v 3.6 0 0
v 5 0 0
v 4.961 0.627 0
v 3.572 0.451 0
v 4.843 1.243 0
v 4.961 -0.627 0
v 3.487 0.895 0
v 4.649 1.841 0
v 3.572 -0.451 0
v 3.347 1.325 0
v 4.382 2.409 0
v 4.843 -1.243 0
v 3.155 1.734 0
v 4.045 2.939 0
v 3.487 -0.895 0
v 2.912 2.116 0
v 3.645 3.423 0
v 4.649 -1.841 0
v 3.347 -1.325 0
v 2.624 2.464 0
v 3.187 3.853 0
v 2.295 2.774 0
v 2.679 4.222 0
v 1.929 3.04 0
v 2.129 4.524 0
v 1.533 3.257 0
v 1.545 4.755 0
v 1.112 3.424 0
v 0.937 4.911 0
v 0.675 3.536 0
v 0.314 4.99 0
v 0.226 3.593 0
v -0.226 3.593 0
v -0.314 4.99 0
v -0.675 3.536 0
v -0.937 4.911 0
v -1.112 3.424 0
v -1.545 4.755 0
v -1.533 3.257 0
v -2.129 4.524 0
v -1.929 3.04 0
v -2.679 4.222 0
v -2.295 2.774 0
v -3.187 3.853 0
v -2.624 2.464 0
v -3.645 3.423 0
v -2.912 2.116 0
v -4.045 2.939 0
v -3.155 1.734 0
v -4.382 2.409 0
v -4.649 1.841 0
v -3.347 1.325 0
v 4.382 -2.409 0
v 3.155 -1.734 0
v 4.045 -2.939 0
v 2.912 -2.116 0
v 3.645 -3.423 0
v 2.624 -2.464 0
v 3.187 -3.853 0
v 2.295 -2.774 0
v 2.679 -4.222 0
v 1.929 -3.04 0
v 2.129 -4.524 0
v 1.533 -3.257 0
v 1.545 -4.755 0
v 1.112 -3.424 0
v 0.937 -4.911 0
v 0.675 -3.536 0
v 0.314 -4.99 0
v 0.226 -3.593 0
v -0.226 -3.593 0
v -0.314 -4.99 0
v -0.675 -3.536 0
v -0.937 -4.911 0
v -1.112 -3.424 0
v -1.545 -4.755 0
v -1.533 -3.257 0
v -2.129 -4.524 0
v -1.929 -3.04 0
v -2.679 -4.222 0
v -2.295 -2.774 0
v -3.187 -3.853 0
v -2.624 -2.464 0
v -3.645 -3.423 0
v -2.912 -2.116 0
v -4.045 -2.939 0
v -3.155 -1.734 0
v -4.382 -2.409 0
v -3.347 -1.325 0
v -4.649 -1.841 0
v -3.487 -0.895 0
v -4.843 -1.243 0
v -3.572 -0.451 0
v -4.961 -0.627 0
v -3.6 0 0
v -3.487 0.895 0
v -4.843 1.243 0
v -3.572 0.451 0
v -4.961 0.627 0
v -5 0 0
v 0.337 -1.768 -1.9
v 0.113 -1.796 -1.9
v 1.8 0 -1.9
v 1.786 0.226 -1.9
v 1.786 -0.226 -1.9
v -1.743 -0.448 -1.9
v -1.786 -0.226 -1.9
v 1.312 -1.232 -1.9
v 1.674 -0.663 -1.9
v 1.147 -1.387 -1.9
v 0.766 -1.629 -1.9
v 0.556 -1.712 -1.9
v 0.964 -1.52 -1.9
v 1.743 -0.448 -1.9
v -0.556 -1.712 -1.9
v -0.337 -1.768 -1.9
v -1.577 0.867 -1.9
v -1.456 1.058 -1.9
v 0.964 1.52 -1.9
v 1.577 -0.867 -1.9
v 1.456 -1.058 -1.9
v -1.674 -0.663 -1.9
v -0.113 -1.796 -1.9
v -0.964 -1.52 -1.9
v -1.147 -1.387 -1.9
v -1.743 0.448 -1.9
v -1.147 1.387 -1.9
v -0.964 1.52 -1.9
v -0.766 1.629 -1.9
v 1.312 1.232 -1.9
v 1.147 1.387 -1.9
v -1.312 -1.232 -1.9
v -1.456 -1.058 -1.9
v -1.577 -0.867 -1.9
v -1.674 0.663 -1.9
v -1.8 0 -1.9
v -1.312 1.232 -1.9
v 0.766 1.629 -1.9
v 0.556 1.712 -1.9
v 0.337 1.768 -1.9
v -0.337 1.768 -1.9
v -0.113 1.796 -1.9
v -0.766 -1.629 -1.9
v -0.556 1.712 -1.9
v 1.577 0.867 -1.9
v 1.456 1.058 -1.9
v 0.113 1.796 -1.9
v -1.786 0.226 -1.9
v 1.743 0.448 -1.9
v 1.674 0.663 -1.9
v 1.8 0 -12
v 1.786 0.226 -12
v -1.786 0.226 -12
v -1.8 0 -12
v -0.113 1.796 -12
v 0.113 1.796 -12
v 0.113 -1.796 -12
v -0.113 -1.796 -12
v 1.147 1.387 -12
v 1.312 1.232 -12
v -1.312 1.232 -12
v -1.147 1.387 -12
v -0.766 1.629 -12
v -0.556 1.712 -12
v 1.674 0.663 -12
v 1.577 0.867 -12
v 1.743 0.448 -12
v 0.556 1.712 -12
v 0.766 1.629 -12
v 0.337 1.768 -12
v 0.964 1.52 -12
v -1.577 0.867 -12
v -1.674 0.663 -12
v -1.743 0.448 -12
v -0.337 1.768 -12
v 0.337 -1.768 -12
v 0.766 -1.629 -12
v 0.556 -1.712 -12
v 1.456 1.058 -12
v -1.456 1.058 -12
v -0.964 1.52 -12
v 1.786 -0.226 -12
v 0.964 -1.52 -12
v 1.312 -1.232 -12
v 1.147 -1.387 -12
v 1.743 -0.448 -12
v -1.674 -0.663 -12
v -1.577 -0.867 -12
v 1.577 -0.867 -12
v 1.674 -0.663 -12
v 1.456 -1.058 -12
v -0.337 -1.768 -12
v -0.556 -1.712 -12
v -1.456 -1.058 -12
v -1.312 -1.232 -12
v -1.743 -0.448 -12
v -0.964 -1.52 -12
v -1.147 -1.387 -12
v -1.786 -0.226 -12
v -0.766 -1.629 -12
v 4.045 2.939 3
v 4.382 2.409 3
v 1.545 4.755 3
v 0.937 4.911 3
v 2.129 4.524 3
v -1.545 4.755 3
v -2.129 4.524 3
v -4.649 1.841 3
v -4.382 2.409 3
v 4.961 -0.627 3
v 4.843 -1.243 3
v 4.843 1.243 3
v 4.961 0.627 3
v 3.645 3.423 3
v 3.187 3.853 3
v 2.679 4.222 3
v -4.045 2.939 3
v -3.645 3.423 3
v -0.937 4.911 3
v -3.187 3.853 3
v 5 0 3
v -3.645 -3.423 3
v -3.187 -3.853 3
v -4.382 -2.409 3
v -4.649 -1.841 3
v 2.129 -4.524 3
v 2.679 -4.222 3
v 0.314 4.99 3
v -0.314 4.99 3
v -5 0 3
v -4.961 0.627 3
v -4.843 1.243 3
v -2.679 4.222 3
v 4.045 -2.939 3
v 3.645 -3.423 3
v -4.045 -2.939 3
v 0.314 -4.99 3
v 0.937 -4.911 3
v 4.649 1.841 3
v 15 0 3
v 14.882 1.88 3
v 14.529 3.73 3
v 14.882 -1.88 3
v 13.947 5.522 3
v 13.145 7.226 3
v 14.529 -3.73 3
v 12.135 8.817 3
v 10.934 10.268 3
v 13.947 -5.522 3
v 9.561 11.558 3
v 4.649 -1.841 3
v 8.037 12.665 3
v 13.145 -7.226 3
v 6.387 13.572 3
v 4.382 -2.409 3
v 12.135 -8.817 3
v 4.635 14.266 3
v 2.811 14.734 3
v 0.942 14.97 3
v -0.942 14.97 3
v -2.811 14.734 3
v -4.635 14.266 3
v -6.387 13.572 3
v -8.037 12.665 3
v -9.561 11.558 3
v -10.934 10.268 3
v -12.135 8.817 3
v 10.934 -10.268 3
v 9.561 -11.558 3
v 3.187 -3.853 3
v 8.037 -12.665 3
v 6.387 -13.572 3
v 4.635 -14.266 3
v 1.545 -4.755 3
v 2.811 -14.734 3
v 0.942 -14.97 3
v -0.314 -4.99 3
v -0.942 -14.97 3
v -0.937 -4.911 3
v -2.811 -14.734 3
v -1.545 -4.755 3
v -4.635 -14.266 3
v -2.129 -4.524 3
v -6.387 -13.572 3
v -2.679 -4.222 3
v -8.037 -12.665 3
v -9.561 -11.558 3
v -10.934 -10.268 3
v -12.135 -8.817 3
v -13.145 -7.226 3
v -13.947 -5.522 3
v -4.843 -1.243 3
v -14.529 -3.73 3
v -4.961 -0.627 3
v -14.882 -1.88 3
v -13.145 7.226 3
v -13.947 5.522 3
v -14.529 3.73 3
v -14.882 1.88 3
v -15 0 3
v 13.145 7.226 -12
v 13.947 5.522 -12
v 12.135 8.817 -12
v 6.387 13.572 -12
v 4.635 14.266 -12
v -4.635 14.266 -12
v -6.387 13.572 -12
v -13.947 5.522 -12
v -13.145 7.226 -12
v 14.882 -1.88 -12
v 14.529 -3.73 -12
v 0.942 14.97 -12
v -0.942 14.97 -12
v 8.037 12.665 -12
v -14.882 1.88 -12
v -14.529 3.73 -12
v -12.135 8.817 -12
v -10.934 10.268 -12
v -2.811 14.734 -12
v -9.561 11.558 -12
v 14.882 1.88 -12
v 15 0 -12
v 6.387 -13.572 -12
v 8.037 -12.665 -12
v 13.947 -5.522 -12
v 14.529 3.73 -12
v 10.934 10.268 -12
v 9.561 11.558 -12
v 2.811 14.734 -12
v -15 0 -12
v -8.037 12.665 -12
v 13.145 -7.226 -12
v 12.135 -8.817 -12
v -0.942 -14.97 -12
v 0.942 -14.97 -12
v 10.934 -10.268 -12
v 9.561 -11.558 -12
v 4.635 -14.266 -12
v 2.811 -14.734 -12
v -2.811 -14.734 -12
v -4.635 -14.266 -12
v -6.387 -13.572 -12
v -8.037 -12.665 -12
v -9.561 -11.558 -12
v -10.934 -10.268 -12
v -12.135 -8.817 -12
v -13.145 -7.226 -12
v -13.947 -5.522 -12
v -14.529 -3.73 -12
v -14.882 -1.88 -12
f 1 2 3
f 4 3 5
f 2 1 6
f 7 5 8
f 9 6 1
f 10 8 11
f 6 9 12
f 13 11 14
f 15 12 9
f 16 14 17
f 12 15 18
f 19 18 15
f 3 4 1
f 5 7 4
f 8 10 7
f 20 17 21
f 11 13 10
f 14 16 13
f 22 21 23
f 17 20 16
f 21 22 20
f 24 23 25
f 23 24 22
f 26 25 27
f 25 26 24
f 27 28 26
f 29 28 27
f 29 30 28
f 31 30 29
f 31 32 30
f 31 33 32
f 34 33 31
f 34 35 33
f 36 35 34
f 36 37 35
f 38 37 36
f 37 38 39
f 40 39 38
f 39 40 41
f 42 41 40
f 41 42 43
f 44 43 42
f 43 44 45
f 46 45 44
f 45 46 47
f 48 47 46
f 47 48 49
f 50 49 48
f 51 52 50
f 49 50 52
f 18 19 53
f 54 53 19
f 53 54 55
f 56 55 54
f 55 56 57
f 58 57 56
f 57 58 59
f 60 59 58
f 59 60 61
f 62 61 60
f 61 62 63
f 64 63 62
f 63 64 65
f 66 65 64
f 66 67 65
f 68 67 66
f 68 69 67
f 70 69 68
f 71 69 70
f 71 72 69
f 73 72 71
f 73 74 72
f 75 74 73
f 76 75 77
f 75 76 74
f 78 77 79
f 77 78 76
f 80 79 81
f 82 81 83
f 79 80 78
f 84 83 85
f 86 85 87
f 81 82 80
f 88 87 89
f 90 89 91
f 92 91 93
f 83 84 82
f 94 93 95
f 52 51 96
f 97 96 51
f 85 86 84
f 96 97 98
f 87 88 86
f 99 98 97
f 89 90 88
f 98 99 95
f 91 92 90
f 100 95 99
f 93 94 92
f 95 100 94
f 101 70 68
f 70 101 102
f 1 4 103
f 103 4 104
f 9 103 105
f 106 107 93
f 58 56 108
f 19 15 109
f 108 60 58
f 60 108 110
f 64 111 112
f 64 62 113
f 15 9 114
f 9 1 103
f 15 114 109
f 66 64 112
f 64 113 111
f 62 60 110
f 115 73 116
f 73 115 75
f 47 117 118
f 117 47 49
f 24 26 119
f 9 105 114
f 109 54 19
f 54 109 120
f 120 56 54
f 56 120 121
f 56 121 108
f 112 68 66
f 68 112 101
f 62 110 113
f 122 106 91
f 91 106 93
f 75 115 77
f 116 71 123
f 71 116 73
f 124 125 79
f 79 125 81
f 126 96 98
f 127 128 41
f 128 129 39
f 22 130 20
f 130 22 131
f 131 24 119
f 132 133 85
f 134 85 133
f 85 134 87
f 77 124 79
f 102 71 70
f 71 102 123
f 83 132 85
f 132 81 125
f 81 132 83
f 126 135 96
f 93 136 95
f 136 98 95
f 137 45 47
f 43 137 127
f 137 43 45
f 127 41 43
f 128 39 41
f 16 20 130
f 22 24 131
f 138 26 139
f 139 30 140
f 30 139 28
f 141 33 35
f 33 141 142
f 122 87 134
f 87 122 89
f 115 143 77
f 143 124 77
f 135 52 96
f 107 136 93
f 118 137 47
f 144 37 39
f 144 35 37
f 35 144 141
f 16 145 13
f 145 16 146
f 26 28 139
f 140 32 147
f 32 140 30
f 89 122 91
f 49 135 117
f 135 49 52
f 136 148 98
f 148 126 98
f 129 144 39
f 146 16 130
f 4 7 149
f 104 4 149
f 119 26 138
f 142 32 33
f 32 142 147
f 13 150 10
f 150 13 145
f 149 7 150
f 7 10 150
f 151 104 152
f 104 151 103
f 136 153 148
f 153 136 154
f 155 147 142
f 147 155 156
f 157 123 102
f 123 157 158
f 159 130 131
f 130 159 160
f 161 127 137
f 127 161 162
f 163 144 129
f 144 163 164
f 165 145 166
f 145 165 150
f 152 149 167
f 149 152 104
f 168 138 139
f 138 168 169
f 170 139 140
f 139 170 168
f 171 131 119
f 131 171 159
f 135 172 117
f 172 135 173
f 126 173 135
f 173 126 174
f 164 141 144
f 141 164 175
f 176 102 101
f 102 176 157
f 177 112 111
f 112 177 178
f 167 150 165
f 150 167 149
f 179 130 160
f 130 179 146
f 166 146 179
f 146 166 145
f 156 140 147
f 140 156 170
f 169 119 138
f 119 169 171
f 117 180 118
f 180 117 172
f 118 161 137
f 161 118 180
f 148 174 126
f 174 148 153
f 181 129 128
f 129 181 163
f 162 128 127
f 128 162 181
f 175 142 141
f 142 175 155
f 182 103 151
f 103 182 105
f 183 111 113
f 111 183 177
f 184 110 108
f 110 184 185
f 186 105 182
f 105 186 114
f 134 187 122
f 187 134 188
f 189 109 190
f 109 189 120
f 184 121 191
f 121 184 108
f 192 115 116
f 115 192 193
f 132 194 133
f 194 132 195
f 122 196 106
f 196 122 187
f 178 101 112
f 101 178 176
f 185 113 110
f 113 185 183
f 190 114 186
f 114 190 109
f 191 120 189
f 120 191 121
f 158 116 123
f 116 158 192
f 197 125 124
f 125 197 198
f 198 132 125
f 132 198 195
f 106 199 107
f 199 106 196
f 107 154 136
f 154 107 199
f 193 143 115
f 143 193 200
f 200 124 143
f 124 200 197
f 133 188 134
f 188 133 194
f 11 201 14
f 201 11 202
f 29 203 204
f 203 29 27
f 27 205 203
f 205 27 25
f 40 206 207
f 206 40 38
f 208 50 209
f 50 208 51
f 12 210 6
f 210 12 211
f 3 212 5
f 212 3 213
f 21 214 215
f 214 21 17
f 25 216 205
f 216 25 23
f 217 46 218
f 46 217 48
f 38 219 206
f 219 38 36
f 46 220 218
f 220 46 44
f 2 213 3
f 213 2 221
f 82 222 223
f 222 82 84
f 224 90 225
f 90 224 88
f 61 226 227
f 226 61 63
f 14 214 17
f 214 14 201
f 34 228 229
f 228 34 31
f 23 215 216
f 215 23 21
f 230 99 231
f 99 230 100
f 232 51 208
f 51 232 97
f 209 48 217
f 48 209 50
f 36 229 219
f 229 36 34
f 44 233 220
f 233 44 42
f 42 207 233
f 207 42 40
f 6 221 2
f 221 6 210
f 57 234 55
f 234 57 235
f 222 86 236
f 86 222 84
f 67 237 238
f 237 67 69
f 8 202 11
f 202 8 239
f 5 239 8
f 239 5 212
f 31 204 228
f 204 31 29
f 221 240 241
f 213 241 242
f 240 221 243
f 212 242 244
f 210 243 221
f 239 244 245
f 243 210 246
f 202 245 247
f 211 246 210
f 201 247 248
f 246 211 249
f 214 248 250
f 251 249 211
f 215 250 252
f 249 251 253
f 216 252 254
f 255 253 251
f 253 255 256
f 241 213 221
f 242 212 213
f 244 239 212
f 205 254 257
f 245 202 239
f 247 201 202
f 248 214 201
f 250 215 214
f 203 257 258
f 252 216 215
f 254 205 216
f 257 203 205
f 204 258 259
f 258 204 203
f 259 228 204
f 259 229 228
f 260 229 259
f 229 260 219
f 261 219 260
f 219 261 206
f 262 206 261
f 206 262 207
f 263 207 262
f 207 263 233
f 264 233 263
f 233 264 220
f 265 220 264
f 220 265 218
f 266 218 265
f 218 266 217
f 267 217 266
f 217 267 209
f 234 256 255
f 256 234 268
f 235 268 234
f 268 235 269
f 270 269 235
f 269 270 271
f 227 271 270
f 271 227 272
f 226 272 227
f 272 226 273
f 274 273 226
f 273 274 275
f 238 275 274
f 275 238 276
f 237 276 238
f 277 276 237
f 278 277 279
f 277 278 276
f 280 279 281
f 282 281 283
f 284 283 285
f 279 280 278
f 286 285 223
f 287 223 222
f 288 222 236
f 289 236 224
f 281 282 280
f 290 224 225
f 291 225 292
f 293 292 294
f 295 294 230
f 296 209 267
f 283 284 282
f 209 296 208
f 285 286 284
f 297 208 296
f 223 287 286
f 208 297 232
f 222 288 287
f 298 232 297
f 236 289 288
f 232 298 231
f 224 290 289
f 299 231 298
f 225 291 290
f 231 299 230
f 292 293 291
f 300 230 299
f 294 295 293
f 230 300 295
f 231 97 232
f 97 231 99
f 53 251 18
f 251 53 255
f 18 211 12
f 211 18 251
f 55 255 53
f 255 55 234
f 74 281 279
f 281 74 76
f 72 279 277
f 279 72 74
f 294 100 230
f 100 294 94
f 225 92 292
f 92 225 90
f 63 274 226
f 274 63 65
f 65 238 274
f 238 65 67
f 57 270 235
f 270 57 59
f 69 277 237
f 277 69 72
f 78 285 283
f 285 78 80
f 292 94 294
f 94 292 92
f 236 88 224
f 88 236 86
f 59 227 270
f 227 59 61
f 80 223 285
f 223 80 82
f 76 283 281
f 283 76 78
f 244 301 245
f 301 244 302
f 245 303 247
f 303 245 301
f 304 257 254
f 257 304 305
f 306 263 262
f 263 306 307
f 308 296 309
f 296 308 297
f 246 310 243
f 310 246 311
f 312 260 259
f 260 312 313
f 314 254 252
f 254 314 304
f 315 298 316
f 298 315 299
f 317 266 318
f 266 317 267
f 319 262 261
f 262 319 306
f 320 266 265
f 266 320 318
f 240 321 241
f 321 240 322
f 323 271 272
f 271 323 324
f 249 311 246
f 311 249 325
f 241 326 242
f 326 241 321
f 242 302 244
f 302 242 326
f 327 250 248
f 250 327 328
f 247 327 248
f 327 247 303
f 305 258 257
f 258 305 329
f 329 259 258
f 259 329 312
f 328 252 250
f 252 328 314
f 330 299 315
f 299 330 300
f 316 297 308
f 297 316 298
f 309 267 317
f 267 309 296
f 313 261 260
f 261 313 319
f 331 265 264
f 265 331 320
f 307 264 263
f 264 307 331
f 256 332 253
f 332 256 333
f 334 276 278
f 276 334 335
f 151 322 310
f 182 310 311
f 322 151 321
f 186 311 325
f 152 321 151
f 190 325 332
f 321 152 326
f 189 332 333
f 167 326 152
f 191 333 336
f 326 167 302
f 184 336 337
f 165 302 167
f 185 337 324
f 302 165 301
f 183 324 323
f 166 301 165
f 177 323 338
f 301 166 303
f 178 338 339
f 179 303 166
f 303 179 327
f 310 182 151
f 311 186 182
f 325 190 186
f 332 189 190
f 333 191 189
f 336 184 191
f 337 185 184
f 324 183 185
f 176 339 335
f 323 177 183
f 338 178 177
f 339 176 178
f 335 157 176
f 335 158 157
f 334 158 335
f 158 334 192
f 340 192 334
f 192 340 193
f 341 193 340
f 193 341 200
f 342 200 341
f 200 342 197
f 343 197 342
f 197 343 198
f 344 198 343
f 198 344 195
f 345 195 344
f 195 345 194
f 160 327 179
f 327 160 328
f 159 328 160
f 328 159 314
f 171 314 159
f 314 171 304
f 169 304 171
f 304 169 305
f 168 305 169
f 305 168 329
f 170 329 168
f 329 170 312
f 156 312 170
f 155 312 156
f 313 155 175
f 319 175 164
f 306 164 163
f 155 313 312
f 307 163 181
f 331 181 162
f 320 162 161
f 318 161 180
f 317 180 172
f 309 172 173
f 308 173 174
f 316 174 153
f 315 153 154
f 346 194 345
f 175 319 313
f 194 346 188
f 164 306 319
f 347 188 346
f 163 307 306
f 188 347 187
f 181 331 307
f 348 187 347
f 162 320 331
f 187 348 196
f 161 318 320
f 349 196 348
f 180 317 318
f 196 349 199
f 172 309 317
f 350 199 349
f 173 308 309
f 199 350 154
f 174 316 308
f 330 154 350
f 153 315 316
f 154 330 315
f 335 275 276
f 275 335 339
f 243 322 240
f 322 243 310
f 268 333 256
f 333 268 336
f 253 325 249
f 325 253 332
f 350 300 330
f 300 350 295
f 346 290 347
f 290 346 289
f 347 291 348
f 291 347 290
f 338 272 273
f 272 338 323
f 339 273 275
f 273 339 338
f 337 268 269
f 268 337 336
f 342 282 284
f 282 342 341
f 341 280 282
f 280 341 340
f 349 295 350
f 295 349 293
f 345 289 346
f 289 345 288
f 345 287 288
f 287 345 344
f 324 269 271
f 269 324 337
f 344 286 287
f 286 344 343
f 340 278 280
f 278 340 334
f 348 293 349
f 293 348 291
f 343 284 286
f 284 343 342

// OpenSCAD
$fn = 50;

difference() {
	union() {
		translate(v = [0, 0, -12.0]) {
			cylinder(h = 15, r = 15.0);
		}
	}
	union() {
		translate(v = [0, 0, 0]) {
			rotate(a = [0, 0, 0]) {
				difference() {
					union() {
						translate(v = [0, 0, -15.0]) {
							cylinder(h = 15, r = 1.5);
						}
						translate(v = [0, 0, -1.9]) {
							cylinder(h = 1.9, r1 = 1.8, r2 = 3.6);
						}
						translate(v = [0, 0, -15.0]) {
							cylinder(h = 15, r = 1.8);
						}
						translate(v = [0, 0, -15.0]) {
							cylinder(h = 15, r = 1.5);
						}
					}
					union();
				}
			}
		}
		#cylinder(h = 3, r = 5.0);
	}
}
